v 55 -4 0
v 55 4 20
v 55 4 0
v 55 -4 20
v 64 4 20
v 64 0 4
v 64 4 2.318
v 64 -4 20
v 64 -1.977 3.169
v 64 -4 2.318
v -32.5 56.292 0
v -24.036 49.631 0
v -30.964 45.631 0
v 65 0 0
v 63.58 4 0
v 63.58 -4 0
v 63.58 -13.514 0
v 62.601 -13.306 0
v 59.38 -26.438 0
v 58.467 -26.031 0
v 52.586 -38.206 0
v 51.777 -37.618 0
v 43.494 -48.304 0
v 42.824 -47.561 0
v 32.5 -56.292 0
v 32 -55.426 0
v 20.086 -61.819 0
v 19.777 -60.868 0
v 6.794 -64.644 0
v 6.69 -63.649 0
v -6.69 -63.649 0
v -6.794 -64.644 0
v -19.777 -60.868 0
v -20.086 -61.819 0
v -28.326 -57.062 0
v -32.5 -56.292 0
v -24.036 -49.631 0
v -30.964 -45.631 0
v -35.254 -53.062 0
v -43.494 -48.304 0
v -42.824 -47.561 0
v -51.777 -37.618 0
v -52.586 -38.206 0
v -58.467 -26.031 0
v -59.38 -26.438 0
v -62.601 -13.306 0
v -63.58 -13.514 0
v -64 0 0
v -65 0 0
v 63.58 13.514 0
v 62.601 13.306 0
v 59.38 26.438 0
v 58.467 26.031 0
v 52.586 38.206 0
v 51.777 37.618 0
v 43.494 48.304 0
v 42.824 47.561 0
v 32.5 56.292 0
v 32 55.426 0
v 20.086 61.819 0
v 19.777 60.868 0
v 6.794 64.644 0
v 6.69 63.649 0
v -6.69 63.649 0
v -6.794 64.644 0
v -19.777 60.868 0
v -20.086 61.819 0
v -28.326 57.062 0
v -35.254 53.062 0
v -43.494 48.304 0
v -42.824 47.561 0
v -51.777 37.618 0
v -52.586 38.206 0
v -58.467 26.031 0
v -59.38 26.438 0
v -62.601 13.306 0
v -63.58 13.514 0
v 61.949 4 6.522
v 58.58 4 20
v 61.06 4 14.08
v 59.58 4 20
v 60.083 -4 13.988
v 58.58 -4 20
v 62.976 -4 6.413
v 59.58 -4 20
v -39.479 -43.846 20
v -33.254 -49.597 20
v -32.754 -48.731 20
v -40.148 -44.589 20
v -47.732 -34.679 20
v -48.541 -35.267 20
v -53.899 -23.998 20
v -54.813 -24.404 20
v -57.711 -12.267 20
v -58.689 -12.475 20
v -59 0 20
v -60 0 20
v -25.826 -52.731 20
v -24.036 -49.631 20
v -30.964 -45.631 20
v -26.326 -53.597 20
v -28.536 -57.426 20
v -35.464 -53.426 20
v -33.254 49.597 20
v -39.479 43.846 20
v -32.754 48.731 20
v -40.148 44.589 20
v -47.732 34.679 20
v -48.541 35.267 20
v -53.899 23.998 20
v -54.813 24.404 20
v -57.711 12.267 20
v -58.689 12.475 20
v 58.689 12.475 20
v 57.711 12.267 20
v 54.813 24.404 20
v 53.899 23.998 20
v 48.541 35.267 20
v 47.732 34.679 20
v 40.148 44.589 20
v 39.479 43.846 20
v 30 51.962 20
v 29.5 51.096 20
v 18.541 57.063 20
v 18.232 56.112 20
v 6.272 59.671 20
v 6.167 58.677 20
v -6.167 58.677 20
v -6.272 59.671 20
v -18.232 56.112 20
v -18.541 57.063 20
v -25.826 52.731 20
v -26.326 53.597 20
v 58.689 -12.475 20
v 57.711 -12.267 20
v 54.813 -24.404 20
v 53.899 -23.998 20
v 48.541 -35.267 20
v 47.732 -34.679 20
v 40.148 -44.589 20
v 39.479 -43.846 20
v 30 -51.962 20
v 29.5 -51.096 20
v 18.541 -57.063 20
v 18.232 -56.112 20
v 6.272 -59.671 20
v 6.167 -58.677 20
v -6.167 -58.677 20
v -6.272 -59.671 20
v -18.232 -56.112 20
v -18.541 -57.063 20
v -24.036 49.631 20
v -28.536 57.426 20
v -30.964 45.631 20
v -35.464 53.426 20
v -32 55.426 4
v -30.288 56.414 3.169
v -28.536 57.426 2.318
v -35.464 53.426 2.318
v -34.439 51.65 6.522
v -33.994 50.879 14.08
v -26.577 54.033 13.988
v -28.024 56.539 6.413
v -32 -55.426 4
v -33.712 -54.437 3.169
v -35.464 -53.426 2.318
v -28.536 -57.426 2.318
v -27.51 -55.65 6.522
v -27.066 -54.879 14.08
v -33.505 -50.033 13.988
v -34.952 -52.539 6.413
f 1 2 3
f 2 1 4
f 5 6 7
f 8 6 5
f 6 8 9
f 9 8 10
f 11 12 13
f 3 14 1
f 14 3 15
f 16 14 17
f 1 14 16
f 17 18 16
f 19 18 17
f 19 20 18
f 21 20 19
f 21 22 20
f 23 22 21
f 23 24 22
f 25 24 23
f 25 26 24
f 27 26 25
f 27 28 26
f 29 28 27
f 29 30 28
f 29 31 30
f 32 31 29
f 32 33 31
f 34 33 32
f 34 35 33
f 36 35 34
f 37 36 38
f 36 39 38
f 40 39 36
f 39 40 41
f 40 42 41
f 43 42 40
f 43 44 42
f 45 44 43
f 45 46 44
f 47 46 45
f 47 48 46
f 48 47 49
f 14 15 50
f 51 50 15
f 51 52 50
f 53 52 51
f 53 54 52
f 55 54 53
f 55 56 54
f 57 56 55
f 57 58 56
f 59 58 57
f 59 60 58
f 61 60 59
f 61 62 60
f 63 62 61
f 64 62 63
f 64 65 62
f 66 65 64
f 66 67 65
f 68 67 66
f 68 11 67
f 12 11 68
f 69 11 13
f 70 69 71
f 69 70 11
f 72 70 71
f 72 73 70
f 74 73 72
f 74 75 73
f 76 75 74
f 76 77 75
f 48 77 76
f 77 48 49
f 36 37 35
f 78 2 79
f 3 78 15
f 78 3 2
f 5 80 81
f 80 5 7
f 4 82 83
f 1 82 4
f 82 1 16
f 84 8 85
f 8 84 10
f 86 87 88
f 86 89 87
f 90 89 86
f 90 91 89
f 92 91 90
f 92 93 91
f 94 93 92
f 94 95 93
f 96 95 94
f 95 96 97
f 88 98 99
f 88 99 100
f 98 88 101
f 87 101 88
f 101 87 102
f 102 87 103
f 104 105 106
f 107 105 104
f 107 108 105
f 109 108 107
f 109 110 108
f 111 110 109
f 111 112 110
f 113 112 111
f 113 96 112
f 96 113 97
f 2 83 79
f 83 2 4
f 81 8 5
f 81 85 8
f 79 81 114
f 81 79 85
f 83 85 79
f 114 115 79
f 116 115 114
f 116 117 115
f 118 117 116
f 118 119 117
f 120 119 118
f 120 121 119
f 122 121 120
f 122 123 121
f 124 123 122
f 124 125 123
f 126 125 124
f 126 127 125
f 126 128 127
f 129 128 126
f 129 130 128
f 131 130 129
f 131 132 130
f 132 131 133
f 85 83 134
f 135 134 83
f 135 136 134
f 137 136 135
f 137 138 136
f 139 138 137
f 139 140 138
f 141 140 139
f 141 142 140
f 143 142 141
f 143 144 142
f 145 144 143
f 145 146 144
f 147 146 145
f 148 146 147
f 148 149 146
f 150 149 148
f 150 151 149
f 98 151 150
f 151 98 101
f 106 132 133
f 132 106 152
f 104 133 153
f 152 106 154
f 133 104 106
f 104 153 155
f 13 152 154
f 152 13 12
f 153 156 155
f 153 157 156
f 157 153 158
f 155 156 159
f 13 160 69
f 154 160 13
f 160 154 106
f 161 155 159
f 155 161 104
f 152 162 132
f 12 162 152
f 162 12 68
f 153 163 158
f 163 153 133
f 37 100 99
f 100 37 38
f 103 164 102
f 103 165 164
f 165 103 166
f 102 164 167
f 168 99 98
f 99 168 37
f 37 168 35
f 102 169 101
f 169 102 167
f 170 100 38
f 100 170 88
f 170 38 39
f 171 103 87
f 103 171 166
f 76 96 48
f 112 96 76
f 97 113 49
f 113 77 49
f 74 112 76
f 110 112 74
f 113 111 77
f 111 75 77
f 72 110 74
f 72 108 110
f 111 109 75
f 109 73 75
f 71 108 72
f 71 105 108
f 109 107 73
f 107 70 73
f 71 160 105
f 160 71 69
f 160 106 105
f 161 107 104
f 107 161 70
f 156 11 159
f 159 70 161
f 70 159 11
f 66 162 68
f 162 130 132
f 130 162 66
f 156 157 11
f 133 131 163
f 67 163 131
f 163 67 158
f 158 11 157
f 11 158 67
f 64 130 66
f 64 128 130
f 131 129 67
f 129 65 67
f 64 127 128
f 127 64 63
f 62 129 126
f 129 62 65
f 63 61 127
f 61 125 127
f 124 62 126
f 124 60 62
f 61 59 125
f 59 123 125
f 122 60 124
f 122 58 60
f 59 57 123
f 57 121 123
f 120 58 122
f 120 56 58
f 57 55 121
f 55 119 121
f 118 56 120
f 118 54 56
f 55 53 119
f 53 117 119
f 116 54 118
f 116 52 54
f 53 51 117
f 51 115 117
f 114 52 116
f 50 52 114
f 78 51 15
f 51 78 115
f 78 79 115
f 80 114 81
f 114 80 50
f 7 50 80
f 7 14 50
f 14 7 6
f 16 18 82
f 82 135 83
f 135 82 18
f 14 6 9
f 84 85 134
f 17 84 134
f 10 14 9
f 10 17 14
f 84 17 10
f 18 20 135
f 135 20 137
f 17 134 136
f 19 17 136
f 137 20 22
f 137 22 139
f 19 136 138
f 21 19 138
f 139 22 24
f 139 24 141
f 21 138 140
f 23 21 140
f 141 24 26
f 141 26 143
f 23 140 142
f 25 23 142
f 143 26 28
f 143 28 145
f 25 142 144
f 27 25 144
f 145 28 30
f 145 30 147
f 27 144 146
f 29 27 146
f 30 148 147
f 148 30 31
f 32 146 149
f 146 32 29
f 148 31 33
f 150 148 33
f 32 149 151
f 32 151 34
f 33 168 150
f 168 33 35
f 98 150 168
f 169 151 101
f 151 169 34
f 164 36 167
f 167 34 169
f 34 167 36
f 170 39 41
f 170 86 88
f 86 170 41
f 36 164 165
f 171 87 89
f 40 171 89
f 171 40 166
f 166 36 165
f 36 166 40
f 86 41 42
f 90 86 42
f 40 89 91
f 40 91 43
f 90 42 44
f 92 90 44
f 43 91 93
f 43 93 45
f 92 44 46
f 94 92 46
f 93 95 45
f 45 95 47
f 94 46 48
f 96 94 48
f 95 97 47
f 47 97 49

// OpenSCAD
module radiationshield(sukima = 15){
//放射シールド
rotate_extrude()

polygon( points=[
   
//[55,20+sukima],
[60,20],
[65,0],
[64,0],
[59,20],
//[54,20+sukima],

] );
};

translate ([0,0,0])radiationshield(15);

module radiationsheild_boss() {
for ( i = [0 : 3] ){
rotate ([0,0,i*120]) 
linear_extrude(height = 20, center = false, convexity = 10, twist = 0)
 polygon( points=[
[64,4],
[64,-4],
[55,-4],
[55,4],
    ]);
}
};

radiationsheild_boss();
